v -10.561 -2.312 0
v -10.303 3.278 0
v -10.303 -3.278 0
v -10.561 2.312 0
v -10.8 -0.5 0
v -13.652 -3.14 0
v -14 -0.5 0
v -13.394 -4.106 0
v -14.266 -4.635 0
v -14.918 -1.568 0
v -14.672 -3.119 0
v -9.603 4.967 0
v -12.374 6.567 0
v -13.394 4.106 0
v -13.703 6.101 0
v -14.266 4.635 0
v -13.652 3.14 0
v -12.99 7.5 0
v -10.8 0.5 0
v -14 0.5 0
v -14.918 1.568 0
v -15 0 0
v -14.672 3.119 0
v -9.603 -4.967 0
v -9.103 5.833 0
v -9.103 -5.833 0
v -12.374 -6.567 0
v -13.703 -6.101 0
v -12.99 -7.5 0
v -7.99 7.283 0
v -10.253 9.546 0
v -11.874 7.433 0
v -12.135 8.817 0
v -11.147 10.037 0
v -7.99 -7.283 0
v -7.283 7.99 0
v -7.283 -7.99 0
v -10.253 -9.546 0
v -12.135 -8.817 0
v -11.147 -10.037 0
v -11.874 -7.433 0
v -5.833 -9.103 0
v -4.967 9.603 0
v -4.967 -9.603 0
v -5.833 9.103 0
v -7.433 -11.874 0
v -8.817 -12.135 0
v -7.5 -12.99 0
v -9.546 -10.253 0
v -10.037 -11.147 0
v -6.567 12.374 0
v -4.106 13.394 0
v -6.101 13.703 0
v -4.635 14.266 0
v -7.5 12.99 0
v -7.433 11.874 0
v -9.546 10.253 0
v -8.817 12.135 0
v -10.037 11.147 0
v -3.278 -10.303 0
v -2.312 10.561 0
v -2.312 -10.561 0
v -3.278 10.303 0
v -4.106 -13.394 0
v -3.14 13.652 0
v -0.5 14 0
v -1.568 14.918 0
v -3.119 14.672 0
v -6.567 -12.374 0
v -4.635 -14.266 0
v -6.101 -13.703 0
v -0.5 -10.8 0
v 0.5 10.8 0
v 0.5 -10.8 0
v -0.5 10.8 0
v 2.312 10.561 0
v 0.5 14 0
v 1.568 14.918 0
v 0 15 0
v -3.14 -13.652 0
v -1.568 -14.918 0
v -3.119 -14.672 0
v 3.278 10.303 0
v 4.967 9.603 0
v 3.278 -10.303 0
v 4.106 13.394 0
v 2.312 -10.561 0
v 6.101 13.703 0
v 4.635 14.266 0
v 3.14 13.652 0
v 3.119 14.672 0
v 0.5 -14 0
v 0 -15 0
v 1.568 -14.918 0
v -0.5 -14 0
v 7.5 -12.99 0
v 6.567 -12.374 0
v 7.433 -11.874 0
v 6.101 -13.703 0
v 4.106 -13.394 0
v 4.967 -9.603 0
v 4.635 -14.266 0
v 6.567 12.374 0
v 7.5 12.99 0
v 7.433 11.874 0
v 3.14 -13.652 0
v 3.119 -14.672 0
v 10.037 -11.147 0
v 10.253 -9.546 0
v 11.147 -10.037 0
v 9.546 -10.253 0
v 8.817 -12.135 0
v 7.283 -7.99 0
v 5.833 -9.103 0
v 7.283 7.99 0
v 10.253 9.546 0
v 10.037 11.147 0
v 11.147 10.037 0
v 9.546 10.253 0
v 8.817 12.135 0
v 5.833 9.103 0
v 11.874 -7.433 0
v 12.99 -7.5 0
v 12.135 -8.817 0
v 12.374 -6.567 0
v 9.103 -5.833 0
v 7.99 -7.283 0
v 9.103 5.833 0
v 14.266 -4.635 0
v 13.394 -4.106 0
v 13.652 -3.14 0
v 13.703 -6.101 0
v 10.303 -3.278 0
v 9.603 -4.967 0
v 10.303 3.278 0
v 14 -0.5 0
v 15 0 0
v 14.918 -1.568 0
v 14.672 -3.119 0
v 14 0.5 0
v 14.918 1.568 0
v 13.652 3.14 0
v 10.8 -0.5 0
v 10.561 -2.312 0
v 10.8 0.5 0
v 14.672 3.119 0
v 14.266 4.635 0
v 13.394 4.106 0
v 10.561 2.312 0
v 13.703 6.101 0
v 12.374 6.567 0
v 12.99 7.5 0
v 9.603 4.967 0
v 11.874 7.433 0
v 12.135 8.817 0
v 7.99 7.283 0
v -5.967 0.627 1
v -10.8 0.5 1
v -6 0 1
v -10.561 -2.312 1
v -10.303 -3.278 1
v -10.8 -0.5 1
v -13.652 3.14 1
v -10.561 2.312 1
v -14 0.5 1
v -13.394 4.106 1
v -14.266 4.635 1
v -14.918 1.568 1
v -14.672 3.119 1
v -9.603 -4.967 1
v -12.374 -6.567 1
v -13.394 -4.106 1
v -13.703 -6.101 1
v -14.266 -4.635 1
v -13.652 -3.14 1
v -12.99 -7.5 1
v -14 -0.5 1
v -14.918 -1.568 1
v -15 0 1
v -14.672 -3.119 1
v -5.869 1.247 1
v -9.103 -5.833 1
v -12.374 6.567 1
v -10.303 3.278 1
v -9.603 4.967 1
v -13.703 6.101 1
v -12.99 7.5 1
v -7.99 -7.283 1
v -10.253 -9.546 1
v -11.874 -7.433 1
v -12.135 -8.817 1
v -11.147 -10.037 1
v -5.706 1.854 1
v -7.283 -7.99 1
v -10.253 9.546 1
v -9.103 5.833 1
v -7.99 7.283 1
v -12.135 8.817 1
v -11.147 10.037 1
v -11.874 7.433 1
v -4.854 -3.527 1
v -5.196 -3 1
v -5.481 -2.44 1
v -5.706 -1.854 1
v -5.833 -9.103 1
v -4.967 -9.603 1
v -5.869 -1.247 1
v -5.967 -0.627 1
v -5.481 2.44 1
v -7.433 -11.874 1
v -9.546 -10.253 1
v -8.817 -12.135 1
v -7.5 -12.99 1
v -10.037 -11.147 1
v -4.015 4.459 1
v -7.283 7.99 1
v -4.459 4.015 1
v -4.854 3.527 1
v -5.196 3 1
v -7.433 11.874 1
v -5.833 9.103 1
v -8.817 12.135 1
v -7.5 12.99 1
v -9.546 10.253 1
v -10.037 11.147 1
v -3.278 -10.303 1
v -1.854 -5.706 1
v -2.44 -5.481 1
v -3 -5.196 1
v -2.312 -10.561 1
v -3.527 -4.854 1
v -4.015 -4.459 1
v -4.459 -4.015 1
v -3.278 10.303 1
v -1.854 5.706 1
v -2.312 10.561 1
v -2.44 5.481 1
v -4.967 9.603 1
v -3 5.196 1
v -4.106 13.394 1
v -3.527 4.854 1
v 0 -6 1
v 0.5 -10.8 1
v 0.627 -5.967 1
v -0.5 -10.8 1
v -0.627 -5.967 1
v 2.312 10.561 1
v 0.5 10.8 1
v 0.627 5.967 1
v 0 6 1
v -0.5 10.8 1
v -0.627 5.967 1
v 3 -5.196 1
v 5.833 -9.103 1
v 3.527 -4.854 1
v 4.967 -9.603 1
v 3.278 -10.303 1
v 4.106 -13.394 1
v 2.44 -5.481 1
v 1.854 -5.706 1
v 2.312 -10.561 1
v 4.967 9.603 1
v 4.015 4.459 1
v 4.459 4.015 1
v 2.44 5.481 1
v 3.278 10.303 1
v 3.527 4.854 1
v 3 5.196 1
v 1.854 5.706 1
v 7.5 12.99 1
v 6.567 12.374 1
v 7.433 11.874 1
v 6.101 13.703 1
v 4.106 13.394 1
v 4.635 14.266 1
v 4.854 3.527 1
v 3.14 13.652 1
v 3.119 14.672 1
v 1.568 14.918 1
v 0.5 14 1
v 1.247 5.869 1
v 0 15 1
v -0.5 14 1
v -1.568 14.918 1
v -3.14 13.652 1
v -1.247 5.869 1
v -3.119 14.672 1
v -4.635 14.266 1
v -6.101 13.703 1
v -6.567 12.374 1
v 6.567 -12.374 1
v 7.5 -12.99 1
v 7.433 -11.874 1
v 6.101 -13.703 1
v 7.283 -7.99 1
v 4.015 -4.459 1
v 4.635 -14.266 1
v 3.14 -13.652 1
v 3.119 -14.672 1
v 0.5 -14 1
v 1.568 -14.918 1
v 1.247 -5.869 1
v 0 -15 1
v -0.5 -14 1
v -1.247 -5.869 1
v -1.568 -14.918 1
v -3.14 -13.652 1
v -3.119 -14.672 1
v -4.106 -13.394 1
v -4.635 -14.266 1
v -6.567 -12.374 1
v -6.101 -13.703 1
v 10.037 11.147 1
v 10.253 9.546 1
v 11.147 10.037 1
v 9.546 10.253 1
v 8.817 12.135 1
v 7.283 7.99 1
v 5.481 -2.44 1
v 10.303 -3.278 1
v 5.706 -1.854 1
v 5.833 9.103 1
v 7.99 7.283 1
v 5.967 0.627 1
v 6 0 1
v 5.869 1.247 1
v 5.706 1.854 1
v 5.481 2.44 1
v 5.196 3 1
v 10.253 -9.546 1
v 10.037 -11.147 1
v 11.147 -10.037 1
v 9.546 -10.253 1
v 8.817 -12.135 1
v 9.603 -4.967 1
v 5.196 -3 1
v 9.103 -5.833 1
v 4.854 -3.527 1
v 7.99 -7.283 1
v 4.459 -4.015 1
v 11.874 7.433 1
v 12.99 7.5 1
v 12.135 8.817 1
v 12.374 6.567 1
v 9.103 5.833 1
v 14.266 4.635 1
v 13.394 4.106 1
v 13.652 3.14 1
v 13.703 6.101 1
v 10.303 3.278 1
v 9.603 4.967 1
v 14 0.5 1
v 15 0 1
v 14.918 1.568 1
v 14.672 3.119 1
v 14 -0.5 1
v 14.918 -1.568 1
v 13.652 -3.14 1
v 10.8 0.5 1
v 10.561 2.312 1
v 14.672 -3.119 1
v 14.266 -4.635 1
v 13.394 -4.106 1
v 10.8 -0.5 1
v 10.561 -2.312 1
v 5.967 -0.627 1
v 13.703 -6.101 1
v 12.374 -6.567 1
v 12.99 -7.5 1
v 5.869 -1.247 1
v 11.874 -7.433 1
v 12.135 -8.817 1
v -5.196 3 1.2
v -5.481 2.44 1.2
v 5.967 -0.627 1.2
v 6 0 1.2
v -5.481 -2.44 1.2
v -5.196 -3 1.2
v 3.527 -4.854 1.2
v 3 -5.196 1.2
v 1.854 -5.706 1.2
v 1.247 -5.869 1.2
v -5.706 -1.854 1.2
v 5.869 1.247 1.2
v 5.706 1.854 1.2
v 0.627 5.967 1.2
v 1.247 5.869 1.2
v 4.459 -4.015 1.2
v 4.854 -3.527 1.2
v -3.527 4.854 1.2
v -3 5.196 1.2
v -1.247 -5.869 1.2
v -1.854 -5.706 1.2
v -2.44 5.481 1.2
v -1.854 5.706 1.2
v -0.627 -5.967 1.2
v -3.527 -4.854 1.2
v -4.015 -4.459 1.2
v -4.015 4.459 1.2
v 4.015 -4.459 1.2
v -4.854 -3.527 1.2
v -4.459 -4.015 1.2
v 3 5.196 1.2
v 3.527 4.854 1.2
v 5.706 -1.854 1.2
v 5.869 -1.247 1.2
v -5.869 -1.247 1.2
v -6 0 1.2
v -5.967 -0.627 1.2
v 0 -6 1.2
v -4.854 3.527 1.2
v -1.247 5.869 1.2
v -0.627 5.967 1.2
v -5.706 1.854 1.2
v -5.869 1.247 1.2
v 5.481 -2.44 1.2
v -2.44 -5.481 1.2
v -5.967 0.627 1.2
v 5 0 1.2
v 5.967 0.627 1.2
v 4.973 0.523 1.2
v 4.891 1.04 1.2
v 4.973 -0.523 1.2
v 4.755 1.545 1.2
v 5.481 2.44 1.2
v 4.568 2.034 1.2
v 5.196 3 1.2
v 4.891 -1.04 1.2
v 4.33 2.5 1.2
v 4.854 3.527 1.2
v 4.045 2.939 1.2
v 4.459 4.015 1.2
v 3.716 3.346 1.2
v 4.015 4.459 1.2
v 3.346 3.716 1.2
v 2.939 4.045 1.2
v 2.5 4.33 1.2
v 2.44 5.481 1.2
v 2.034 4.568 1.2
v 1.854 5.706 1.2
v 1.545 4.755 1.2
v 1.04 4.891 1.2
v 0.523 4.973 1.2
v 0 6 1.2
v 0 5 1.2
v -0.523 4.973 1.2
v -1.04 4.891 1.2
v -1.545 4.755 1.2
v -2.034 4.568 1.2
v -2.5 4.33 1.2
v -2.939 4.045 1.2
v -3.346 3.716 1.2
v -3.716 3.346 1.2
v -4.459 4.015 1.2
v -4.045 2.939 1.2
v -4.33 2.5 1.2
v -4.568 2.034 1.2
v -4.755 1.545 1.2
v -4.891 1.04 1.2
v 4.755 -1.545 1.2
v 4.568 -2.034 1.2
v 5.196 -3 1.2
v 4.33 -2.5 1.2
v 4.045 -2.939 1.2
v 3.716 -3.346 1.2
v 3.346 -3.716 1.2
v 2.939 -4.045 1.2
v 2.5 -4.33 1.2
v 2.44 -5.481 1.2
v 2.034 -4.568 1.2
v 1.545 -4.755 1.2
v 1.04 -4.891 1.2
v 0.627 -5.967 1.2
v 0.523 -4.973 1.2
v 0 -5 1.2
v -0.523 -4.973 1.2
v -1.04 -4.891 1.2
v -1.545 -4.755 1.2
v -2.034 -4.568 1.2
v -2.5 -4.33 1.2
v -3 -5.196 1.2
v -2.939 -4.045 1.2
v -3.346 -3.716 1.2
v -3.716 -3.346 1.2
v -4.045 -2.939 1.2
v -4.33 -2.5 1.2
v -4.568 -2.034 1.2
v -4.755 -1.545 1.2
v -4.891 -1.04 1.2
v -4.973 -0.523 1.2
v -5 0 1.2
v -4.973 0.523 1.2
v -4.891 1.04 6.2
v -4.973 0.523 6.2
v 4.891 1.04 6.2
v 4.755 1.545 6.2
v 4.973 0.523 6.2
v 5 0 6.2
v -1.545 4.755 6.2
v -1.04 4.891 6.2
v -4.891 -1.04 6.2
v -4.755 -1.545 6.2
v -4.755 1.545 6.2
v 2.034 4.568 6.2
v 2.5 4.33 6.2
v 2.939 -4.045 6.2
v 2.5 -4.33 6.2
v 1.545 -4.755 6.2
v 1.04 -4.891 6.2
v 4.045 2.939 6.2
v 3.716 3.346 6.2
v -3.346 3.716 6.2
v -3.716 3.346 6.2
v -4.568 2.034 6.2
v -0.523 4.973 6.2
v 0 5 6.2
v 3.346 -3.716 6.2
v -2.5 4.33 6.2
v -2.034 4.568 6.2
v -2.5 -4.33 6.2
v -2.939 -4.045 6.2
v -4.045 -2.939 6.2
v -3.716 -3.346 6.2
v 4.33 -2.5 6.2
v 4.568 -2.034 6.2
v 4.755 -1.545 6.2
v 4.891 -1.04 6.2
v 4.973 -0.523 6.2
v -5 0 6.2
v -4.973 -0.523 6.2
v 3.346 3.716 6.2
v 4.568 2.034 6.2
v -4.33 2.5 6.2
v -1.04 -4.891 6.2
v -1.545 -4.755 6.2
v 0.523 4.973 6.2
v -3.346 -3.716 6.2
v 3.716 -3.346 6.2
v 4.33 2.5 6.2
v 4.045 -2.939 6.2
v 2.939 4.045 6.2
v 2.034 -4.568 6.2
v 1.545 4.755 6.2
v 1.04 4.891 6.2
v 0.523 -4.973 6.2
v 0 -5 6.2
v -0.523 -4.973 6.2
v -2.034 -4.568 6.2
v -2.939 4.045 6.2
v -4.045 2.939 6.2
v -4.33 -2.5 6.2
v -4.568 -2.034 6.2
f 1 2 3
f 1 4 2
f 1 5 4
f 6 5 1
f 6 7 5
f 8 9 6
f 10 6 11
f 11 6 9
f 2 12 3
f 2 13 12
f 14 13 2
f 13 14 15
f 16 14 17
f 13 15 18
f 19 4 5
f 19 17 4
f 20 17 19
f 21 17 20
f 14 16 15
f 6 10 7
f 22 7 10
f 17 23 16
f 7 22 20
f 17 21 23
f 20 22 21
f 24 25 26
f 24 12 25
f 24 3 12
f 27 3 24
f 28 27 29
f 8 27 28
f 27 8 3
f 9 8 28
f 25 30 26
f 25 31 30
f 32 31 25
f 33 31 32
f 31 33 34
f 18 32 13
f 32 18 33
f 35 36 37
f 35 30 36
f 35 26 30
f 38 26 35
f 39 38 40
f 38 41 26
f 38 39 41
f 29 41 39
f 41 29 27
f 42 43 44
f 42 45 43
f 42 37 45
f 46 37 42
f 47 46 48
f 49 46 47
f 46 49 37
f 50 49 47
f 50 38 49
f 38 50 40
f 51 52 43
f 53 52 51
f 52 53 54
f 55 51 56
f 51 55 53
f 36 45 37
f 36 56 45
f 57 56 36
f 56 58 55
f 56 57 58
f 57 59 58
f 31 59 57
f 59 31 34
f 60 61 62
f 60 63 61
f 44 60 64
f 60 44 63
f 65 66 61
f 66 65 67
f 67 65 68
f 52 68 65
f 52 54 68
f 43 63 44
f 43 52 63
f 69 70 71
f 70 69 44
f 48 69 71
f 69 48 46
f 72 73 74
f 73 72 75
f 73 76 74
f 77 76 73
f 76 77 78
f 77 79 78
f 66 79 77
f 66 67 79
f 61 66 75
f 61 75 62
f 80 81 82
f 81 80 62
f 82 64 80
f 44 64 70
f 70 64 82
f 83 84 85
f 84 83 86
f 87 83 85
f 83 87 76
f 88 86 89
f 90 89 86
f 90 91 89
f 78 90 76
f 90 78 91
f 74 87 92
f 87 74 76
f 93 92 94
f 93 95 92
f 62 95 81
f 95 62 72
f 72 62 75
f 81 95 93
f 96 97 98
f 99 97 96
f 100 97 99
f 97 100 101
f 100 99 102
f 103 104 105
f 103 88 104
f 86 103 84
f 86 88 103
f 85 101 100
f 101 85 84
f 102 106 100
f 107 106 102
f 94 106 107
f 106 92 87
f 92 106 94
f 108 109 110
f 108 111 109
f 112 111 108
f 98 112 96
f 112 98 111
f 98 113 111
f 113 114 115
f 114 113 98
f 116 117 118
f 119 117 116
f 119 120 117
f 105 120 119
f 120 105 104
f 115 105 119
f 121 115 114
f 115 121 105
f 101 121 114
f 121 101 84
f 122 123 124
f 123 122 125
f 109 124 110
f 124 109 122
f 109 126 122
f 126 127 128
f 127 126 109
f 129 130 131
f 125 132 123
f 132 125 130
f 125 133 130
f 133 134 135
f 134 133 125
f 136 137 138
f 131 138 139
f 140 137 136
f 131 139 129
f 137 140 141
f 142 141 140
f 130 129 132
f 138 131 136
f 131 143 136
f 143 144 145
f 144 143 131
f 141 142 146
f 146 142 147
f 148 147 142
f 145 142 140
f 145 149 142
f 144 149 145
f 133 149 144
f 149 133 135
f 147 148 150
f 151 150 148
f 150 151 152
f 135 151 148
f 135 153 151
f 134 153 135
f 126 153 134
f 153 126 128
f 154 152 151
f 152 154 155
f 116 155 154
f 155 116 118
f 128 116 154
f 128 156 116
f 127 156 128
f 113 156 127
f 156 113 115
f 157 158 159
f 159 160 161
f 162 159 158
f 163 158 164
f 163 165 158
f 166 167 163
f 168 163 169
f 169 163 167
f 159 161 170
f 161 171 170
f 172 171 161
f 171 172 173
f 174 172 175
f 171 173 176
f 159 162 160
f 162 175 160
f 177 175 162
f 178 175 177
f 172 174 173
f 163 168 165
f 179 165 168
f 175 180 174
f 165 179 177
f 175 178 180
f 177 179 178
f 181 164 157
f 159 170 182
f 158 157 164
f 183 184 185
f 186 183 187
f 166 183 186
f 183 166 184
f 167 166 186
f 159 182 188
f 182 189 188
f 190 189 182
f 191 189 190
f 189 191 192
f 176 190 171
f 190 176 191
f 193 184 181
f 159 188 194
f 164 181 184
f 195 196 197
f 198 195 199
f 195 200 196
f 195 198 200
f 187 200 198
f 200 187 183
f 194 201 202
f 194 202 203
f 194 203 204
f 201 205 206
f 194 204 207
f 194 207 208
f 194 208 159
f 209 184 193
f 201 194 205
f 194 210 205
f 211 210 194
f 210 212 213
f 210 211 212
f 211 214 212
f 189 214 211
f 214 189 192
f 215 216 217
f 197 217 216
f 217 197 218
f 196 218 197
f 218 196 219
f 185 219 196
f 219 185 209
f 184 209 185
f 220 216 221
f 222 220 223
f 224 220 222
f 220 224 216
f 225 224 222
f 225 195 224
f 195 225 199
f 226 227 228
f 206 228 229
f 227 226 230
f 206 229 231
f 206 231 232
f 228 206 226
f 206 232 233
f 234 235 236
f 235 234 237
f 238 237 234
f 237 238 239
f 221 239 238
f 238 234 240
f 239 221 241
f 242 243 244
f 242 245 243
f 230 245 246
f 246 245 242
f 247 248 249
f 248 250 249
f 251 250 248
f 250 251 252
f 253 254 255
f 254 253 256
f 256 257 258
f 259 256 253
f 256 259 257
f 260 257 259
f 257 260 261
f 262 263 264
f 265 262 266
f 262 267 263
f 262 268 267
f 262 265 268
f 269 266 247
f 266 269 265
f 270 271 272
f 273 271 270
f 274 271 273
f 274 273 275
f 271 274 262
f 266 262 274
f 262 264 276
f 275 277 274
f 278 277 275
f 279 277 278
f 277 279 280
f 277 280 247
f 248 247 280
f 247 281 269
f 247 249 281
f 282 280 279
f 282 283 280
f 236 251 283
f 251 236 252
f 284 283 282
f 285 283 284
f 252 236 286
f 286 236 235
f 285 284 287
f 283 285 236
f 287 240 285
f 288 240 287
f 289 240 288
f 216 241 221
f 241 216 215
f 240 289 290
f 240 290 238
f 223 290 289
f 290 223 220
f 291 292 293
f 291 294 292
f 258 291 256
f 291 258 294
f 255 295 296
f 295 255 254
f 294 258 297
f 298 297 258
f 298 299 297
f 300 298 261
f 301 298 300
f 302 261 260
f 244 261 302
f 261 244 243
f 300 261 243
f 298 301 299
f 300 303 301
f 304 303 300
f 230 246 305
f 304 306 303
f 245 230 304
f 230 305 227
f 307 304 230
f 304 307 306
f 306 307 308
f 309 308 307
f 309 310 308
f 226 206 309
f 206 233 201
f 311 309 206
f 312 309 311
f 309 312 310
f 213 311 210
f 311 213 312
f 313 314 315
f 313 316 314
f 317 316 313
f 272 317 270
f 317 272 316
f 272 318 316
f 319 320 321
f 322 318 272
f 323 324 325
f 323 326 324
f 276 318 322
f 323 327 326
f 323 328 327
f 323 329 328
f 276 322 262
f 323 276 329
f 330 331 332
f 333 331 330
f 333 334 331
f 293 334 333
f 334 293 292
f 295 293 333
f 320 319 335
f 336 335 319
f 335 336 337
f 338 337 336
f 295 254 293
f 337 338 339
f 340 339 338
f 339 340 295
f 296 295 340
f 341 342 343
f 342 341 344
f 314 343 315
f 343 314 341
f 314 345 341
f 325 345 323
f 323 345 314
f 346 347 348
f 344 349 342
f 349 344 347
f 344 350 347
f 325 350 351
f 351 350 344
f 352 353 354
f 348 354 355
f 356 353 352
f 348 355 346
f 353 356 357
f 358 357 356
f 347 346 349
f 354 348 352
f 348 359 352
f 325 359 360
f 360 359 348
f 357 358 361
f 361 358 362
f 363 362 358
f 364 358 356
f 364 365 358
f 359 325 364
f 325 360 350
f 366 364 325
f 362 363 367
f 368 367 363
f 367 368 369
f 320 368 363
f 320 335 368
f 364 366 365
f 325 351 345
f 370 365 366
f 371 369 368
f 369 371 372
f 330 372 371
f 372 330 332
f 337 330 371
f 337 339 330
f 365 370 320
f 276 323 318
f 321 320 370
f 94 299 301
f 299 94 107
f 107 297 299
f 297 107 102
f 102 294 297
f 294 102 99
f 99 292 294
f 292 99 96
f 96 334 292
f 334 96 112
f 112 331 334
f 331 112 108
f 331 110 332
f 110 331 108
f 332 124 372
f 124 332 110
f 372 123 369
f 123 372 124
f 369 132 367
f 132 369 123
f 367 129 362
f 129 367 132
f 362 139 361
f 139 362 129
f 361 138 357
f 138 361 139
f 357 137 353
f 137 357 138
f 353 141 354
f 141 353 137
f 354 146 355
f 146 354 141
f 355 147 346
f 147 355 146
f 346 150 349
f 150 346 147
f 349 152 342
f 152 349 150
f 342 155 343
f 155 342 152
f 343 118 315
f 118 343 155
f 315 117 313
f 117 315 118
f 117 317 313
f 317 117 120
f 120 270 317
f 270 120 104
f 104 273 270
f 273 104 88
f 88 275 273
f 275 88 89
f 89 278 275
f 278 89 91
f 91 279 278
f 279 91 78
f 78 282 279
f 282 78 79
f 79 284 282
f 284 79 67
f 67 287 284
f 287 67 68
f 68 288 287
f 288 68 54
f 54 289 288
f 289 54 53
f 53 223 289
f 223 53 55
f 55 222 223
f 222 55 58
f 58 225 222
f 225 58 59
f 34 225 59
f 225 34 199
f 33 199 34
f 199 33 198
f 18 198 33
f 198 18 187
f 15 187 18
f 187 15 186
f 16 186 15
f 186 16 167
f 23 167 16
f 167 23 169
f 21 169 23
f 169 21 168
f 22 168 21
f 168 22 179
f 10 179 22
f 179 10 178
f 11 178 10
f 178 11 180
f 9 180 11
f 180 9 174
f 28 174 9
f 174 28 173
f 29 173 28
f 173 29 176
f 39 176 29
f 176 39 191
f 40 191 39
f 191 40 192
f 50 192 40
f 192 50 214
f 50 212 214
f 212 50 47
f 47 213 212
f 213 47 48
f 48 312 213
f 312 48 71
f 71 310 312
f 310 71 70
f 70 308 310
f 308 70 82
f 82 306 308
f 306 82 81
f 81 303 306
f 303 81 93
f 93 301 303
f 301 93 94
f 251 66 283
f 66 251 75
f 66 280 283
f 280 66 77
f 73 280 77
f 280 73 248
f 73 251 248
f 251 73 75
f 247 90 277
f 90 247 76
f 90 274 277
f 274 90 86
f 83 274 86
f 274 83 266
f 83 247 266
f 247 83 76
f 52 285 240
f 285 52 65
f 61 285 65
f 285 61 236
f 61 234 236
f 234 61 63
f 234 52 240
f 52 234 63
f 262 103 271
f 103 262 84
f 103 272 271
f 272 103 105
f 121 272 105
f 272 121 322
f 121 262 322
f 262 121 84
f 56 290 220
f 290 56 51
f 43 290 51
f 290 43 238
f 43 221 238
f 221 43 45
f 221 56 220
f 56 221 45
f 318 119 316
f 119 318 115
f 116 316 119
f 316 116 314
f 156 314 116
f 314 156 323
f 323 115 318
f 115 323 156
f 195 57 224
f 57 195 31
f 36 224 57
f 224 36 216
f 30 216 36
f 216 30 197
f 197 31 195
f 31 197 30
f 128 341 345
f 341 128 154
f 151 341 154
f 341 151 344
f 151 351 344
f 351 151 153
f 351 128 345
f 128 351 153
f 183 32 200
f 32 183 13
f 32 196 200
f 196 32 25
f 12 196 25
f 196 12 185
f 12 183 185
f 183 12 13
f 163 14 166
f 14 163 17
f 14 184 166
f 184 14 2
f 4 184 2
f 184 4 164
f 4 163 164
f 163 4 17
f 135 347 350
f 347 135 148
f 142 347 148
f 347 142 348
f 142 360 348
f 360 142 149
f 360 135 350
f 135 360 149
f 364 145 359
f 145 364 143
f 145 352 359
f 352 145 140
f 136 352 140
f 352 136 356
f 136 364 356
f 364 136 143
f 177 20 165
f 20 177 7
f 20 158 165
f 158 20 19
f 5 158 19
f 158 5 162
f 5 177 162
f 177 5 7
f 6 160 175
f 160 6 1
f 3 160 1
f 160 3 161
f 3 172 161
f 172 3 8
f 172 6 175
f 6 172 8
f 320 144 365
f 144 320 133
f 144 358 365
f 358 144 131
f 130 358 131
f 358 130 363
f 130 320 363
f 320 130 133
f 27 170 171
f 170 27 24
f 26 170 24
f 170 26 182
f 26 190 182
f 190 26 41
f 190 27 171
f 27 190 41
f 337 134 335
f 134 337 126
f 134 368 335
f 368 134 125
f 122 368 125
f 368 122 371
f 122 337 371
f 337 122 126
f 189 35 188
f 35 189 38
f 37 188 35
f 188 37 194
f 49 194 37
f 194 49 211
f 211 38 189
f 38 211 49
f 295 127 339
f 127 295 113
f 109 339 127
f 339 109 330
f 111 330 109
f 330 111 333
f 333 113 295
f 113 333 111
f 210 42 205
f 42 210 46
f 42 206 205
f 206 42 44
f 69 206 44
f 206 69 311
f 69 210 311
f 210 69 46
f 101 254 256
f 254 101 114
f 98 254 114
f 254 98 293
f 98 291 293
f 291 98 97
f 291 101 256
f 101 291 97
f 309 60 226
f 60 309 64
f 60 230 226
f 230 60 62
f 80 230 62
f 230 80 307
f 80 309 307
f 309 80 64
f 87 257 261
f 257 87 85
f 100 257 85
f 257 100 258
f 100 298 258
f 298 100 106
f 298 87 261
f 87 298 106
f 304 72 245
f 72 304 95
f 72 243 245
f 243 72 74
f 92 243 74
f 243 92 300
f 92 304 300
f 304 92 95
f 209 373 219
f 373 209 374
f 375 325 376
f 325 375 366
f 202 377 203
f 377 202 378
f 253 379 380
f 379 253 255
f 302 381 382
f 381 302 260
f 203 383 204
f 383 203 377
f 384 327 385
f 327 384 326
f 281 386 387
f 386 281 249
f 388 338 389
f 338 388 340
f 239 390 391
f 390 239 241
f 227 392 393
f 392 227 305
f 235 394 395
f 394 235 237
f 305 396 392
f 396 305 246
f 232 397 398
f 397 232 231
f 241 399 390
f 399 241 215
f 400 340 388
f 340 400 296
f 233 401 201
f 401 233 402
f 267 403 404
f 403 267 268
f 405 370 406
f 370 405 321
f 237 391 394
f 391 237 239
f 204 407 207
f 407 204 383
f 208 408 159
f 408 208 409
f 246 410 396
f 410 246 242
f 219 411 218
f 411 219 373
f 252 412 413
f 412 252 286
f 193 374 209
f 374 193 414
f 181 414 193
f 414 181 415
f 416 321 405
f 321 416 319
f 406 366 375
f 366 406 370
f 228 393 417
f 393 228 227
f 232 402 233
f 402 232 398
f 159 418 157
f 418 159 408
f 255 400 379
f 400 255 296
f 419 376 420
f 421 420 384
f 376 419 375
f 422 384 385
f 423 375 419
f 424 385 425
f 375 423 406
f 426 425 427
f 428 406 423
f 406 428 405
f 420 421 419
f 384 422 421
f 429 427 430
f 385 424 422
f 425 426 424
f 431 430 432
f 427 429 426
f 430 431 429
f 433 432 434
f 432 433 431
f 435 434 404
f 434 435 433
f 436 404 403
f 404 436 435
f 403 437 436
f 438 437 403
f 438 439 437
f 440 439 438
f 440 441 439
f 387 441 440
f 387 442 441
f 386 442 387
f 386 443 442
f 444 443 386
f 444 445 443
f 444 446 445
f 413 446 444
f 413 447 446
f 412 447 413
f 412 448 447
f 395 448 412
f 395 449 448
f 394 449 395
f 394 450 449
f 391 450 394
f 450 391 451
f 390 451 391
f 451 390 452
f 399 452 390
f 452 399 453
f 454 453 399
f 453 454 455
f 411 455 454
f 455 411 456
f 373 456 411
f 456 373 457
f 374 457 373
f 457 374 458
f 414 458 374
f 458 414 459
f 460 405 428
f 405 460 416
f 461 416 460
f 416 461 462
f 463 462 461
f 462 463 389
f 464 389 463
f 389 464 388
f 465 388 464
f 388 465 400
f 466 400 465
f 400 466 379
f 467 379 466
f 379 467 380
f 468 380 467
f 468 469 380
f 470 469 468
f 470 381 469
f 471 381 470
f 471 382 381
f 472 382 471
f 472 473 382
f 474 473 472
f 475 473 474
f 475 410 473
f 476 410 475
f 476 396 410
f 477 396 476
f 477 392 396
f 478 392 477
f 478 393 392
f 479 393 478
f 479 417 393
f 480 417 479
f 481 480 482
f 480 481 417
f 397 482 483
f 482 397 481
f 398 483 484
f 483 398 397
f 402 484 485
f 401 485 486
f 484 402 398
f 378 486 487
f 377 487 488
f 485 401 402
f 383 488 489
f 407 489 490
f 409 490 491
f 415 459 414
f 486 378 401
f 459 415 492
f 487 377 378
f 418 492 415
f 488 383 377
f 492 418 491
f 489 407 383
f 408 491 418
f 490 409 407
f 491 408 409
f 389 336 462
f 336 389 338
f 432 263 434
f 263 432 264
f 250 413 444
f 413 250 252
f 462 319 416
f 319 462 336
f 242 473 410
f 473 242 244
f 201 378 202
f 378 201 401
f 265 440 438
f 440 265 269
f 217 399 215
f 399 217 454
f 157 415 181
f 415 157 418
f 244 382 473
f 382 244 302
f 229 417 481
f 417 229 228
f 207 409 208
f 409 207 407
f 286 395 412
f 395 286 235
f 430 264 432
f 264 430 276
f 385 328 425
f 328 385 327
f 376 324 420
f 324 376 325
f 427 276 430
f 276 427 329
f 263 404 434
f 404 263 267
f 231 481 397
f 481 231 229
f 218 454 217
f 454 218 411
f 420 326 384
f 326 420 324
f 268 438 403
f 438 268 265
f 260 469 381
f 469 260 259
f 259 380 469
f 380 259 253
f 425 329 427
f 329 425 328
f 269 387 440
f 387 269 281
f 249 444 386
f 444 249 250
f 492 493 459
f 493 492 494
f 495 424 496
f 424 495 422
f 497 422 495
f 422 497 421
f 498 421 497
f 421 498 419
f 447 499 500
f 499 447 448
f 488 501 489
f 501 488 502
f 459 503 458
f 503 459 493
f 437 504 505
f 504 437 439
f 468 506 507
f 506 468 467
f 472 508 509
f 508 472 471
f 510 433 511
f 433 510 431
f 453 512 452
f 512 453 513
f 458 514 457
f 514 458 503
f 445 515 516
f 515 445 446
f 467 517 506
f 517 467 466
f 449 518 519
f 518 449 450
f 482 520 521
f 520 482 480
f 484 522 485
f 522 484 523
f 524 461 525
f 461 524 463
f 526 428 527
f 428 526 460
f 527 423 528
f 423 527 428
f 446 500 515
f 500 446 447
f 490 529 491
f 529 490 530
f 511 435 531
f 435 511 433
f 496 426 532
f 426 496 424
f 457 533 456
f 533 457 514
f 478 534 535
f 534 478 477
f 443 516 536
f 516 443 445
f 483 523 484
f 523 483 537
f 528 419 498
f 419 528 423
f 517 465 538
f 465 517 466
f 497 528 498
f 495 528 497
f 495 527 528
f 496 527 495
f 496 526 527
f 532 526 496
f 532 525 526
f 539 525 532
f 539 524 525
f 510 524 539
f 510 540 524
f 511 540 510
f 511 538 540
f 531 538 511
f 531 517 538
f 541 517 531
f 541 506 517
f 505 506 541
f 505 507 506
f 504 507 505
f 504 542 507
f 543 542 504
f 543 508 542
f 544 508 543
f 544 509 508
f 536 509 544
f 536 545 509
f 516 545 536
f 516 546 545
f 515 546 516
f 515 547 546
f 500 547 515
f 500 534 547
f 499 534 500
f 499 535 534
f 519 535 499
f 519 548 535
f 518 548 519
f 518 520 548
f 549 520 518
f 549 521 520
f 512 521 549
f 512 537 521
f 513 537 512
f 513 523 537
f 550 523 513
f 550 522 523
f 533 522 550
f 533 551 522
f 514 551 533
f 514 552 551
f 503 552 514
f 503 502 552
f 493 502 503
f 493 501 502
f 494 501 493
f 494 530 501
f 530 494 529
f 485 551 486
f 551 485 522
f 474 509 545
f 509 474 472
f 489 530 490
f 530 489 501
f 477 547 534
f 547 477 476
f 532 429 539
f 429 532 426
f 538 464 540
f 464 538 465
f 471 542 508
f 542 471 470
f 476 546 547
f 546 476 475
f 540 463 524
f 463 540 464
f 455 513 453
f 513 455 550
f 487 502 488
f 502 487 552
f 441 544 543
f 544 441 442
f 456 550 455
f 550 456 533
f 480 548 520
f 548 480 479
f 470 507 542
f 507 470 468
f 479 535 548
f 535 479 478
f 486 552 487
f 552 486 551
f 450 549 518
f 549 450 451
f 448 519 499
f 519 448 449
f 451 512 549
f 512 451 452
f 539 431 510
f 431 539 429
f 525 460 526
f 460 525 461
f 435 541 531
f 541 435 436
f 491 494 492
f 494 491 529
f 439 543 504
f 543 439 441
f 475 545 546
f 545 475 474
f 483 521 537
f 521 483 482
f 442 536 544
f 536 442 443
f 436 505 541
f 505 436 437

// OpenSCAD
encoder_disk_diameter = 30;
encoder_eye_size = [3.2,1];
encoder_disk_thickness = 1;

bearing_inner_diameter=10;
bearing_inner_ring_diameter=12;
bearing_width = 5;



/** expose parameters **/
function encoder_disk_diameter() = encoder_disk_diameter;


/** compute metrics **/
function encoder_eye_pos () = [encoder_disk_diameter/2-encoder_eye_size[0]/2-1,0];


function bearing_resting_edge () = encoder_disk_thickness+0.2;
function bearing_core_width () = bearing_resting_edge () + bearing_width;


module encoder_disk() {
    linear_extrude(encoder_disk_thickness)  difference() {
        circle(d=encoder_disk_diameter);        
        for (a=[15:15:360]) rotate([0,0,a]) translate(encoder_eye_pos()) square(encoder_eye_size, center=true);
    }

    linear_extrude(bearing_resting_edge()) circle(d=bearing_inner_ring_diameter);
    linear_extrude(bearing_core_width()) circle(d=bearing_inner_diameter);
}




encoder_disk($fn=60);
